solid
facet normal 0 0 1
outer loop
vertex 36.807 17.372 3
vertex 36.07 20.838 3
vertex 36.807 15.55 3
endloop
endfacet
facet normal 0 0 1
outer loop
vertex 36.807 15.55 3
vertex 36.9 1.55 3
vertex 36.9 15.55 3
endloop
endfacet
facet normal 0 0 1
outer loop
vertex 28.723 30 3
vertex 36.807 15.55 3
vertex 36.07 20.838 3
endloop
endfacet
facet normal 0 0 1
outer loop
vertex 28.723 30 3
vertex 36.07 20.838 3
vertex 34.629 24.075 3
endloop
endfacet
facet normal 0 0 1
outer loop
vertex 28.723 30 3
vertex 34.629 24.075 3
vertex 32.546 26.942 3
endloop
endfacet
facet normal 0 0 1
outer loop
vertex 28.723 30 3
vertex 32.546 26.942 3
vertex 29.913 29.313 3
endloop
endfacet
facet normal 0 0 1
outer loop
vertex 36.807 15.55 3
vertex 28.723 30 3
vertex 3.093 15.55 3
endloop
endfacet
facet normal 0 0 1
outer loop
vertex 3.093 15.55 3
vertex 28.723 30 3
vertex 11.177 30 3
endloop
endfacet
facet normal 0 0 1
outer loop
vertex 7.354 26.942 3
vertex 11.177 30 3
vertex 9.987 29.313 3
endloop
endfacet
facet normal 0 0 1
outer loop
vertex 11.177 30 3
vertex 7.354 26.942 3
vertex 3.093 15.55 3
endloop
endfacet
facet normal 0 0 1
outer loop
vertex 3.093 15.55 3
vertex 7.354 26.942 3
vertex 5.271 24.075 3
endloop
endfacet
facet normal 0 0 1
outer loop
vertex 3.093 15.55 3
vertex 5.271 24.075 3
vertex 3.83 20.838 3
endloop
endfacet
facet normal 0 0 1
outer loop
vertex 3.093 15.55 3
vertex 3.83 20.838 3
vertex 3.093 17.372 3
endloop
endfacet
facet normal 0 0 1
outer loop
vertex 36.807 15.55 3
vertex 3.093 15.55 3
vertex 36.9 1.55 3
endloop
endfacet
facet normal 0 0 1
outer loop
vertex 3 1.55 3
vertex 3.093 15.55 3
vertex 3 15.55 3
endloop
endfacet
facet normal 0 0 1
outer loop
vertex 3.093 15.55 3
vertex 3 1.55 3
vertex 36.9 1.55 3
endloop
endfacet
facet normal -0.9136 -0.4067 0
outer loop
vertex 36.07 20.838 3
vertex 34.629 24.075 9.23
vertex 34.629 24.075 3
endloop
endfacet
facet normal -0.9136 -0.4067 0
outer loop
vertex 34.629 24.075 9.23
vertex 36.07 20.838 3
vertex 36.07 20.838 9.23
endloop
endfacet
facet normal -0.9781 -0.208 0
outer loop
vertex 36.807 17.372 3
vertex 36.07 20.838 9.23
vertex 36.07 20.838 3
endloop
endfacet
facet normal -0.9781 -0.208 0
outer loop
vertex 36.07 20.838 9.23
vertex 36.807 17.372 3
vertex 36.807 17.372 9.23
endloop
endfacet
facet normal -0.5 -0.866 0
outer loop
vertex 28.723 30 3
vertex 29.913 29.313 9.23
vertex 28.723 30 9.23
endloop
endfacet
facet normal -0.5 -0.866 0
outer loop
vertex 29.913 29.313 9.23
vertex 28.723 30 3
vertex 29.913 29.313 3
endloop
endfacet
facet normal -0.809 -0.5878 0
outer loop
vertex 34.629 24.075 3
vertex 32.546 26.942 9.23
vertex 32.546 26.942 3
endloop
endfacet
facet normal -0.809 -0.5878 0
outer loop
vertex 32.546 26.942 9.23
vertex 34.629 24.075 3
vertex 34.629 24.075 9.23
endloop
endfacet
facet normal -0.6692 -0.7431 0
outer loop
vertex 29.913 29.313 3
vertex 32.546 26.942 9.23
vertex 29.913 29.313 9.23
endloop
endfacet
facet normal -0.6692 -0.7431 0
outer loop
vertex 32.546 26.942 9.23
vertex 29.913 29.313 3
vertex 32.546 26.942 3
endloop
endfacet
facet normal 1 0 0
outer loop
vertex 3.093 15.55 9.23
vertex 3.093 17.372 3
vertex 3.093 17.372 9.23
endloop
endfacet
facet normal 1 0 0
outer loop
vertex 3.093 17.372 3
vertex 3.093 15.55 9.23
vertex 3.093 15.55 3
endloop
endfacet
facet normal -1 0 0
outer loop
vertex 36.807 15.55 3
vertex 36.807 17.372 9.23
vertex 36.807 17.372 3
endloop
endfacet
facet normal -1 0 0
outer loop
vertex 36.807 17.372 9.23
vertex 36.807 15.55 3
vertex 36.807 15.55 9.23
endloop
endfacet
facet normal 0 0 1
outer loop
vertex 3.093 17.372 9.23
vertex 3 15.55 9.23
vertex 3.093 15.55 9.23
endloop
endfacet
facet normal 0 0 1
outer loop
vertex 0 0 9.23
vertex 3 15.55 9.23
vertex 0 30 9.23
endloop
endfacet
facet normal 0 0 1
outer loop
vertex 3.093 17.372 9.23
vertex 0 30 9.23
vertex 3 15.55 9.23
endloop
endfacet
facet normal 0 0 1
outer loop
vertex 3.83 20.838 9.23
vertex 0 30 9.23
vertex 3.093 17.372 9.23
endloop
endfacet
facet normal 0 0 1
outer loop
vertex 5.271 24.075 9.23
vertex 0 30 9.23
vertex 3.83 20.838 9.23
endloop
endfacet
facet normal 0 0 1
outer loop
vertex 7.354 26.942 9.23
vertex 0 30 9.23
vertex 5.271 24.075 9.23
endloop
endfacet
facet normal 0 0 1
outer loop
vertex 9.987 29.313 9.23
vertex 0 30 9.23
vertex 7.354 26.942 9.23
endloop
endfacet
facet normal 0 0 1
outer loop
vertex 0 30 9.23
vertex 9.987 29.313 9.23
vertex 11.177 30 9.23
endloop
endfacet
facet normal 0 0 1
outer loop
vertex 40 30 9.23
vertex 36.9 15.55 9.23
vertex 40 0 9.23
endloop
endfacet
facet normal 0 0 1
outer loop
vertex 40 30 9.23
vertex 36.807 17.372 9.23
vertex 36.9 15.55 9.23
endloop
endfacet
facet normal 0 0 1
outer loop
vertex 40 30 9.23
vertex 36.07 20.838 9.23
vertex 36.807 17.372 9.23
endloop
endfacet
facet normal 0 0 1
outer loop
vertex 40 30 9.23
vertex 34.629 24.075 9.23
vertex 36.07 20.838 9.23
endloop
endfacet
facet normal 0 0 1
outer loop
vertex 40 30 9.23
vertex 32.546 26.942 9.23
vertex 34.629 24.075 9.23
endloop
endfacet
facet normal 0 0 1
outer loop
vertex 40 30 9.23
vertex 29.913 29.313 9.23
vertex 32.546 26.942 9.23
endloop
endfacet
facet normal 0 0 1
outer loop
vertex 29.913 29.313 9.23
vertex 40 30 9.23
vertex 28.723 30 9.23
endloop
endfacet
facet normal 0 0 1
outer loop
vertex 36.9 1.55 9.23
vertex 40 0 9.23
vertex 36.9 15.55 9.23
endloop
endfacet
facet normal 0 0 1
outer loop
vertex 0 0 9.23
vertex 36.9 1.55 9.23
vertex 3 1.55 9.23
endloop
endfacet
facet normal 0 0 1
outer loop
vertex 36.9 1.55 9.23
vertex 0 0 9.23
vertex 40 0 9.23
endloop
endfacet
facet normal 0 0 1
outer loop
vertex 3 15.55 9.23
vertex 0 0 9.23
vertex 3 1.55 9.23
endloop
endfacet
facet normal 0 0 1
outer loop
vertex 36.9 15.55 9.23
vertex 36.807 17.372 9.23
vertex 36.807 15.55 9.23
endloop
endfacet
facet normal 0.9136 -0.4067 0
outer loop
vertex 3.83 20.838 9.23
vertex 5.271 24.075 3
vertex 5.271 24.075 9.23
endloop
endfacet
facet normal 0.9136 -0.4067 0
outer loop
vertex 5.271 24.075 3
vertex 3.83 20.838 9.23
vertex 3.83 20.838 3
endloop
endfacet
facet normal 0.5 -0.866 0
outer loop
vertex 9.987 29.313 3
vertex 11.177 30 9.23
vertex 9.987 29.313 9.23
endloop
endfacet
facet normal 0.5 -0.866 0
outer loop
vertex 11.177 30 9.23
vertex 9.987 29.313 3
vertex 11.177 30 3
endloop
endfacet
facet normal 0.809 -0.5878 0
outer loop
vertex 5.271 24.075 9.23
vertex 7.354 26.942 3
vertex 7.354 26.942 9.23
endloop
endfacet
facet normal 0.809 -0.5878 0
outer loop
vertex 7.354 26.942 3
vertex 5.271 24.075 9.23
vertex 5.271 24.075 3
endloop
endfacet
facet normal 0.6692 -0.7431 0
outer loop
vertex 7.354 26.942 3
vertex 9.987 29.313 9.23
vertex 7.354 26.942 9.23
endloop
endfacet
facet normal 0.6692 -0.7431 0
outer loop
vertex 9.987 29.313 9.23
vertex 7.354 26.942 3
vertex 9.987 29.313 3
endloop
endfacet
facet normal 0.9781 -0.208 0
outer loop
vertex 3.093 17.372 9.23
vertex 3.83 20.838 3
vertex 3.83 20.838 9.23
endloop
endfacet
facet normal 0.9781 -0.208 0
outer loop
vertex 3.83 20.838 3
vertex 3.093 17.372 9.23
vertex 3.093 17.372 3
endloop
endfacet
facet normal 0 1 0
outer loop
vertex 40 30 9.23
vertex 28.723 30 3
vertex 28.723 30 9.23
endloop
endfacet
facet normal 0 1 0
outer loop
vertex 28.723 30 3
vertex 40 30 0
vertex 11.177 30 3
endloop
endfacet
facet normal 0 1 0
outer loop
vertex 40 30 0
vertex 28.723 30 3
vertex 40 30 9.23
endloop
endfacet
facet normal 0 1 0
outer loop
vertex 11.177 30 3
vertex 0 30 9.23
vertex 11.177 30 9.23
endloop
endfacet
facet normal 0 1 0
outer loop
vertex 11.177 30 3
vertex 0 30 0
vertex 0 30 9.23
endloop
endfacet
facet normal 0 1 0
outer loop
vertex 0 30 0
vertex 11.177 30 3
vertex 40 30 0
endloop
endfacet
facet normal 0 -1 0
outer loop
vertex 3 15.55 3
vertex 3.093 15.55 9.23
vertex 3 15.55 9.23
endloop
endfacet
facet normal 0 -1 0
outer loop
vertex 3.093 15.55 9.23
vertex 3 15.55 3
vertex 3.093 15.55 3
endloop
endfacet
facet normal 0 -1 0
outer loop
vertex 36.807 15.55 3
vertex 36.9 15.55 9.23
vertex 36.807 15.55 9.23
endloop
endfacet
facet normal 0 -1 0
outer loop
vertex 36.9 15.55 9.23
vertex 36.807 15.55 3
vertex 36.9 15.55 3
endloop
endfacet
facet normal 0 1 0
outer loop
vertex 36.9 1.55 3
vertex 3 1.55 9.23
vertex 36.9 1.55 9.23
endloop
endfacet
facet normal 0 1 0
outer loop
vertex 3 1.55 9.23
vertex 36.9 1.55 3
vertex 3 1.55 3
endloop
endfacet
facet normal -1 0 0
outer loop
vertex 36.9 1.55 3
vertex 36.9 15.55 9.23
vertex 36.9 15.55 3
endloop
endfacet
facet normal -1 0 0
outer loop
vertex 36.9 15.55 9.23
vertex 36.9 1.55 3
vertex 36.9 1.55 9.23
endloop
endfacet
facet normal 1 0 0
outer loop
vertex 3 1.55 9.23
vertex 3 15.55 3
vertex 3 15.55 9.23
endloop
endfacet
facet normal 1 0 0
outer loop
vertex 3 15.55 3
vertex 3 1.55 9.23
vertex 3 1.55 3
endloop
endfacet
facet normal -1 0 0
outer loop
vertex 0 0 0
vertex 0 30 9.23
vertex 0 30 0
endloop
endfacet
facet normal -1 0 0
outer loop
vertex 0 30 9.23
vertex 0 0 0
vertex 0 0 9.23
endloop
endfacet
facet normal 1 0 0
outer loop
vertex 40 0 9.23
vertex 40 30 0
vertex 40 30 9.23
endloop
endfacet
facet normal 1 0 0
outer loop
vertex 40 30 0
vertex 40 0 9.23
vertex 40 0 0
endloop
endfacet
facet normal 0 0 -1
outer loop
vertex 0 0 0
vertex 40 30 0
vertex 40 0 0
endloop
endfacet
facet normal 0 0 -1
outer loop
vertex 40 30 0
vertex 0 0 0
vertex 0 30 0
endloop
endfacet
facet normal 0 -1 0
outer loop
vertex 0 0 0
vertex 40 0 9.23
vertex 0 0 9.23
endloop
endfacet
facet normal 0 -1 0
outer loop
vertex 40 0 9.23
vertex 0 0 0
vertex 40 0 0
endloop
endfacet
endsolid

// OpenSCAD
// file: SquareWithCirclePileLib.scad
module LeftPile(
    wallThickness,
    totalHeight,
    singlePileHeight,
    singlePileWidth,
    singlePileSquareLength,
    singlePileCircleLength,
    pileCount,
    openingSizePercent = .75
){
    pileHeight = (pileCount * singlePileHeight) + .5;
    offset = singlePileCircleLength * .15;

    translate([singlePileCircleLength - offset, wallThickness, totalHeight - pileHeight])
        cube([singlePileSquareLength, singlePileWidth, pileHeight]);
    union() {
        intersection(){
            translate([singlePileWidth/2 - offset, wallThickness + singlePileWidth/2, totalHeight - pileHeight])
                cylinder(pileHeight, d=singlePileWidth);
            translate([0, wallThickness, totalHeight - pileHeight])
                cube([singlePileCircleLength, singlePileWidth, pileHeight]);
        }
        intersection(){
            translate([singlePileWidth/2 - offset, wallThickness + singlePileWidth/2, totalHeight - pileHeight])
                cylinder(pileHeight, d=singlePileWidth);
            translate([-wallThickness, wallThickness, totalHeight - pileHeight])
                cube([singlePileCircleLength, singlePileWidth, pileHeight]);
        }
        translate([4, 4, 0])
            rotate([0, 0, 45])
                translate([wallThickness, wallThickness, totalHeight - pileHeight])
                    cube([singlePileCircleLength, singlePileCircleLength, pileHeight]);
    }
}

module RightPile(
    wallThickness,
    totalHeight,
    singlePileHeight,
    singlePileWidth,
    singlePileSquareLength,
    singlePileCircleLength,
    pileCount,
    openingSizePercent = .75
){
    translate([0, wallThickness + wallThickness + singlePileWidth, 0])
        rotate([0, 0, 180])
            LeftPile(
                wallThickness,
                totalHeight,
                singlePileHeight,
                singlePileWidth,
                singlePileSquareLength,
                singlePileCircleLength,
                pileCount,
                openingSizePercent
            );
}

module BottomPile(
    wallThickness,
    totalHeight,
    singlePileHeight,
    singlePileWidth,
    singlePileSquareLength,
    singlePileCircleLength,
    pileCount,
    openingSizePercent = .75
){
    translate([wallThickness + wallThickness + singlePileWidth, 0, 0])
        rotate([0, 0, 90])
            LeftPile(
                wallThickness,
                totalHeight,
                singlePileHeight,
                singlePileWidth,
                singlePileSquareLength,
                singlePileCircleLength,
                pileCount,
                openingSizePercent
            );
}

module TopPile(
    wallThickness,
    totalHeight,
    singlePileHeight,
    singlePileWidth,
    singlePileSquareLength,
    singlePileCircleLength,
    pileCount,
    openingSizePercent = .75
){
        rotate([0, 0, 270])
            LeftPile(
                wallThickness,
                totalHeight,
                singlePileHeight,
                singlePileWidth,
                singlePileSquareLength,
                singlePileCircleLength,
                pileCount,
                openingSizePercent
            );
}
// file: CaledoniaPointTileLib.scad
include<SquareWithCirclePileLib.scad>
singlePointTileHeight = 1.91;
singlePointTileWidth = 32.9 + 1;
singlePointTileSquareLength = 13 + 1;
singlePointTileCircleLength = 16 + 1;

module LeftPointTile(wallThickness, totalHeight, pointTileCount){
    LeftPile(
        wallThickness,
        totalHeight,
        singlePointTileHeight,
        singlePointTileWidth,
        singlePointTileSquareLength,
        singlePointTileCircleLength,
        pointTileCount);
}

module RightPointTile(wallThickness, totalHeight, pointTileCount){
    RightPile(
        wallThickness,
        totalHeight,
        singlePointTileHeight,
        singlePointTileWidth,
        singlePointTileSquareLength,
        singlePointTileCircleLength,
        pointTileCount);
}

module BottomPointTile(wallThickness, totalHeight, pointTileCount){
    BottomPile(
        wallThickness,
        totalHeight,
        singlePointTileHeight,
        singlePointTileWidth,
        singlePointTileSquareLength,
        singlePointTileCircleLength,
        pointTileCount);
}

module TopPointTile(wallThickness, totalHeight, pointTileCount){
    TopPile(
        wallThickness,
        totalHeight,
        singlePointTileHeight,
        singlePointTileWidth,
        singlePointTileSquareLength,
        singlePointTileCircleLength,
        pointTileCount);
}

function pointTileHeight(pointTileCount) =
    (pointTileCount * singlePointTileHeight) + .5;
// main file
include<CaledoniaPointTileLib.scad>
difference() {
    testBoxHeight = pointTileHeight(3) + 3;
    testBoxLength = 40;
    testBoxWidth = 30;
    wallThickness = 3;

    cube([testBoxLength, testBoxWidth, testBoxHeight]);
//    LeftPointTile(wallThickness, testBoxHeight, 10);
////    translate([100 - (15.05 + .8), 0, 0])
//    translate([testBoxLength, 0, 0])
//        RightPointTile(wallThickness, testBoxHeight, 6);
//    translate([singlePointTileLength + wallThickness, 0, 0])
//        BottomPointTile(wallThickness, testBoxHeight, 1);
    translate([0, testBoxWidth, 0])
        TopPointTile(wallThickness, testBoxHeight, 3);
}
